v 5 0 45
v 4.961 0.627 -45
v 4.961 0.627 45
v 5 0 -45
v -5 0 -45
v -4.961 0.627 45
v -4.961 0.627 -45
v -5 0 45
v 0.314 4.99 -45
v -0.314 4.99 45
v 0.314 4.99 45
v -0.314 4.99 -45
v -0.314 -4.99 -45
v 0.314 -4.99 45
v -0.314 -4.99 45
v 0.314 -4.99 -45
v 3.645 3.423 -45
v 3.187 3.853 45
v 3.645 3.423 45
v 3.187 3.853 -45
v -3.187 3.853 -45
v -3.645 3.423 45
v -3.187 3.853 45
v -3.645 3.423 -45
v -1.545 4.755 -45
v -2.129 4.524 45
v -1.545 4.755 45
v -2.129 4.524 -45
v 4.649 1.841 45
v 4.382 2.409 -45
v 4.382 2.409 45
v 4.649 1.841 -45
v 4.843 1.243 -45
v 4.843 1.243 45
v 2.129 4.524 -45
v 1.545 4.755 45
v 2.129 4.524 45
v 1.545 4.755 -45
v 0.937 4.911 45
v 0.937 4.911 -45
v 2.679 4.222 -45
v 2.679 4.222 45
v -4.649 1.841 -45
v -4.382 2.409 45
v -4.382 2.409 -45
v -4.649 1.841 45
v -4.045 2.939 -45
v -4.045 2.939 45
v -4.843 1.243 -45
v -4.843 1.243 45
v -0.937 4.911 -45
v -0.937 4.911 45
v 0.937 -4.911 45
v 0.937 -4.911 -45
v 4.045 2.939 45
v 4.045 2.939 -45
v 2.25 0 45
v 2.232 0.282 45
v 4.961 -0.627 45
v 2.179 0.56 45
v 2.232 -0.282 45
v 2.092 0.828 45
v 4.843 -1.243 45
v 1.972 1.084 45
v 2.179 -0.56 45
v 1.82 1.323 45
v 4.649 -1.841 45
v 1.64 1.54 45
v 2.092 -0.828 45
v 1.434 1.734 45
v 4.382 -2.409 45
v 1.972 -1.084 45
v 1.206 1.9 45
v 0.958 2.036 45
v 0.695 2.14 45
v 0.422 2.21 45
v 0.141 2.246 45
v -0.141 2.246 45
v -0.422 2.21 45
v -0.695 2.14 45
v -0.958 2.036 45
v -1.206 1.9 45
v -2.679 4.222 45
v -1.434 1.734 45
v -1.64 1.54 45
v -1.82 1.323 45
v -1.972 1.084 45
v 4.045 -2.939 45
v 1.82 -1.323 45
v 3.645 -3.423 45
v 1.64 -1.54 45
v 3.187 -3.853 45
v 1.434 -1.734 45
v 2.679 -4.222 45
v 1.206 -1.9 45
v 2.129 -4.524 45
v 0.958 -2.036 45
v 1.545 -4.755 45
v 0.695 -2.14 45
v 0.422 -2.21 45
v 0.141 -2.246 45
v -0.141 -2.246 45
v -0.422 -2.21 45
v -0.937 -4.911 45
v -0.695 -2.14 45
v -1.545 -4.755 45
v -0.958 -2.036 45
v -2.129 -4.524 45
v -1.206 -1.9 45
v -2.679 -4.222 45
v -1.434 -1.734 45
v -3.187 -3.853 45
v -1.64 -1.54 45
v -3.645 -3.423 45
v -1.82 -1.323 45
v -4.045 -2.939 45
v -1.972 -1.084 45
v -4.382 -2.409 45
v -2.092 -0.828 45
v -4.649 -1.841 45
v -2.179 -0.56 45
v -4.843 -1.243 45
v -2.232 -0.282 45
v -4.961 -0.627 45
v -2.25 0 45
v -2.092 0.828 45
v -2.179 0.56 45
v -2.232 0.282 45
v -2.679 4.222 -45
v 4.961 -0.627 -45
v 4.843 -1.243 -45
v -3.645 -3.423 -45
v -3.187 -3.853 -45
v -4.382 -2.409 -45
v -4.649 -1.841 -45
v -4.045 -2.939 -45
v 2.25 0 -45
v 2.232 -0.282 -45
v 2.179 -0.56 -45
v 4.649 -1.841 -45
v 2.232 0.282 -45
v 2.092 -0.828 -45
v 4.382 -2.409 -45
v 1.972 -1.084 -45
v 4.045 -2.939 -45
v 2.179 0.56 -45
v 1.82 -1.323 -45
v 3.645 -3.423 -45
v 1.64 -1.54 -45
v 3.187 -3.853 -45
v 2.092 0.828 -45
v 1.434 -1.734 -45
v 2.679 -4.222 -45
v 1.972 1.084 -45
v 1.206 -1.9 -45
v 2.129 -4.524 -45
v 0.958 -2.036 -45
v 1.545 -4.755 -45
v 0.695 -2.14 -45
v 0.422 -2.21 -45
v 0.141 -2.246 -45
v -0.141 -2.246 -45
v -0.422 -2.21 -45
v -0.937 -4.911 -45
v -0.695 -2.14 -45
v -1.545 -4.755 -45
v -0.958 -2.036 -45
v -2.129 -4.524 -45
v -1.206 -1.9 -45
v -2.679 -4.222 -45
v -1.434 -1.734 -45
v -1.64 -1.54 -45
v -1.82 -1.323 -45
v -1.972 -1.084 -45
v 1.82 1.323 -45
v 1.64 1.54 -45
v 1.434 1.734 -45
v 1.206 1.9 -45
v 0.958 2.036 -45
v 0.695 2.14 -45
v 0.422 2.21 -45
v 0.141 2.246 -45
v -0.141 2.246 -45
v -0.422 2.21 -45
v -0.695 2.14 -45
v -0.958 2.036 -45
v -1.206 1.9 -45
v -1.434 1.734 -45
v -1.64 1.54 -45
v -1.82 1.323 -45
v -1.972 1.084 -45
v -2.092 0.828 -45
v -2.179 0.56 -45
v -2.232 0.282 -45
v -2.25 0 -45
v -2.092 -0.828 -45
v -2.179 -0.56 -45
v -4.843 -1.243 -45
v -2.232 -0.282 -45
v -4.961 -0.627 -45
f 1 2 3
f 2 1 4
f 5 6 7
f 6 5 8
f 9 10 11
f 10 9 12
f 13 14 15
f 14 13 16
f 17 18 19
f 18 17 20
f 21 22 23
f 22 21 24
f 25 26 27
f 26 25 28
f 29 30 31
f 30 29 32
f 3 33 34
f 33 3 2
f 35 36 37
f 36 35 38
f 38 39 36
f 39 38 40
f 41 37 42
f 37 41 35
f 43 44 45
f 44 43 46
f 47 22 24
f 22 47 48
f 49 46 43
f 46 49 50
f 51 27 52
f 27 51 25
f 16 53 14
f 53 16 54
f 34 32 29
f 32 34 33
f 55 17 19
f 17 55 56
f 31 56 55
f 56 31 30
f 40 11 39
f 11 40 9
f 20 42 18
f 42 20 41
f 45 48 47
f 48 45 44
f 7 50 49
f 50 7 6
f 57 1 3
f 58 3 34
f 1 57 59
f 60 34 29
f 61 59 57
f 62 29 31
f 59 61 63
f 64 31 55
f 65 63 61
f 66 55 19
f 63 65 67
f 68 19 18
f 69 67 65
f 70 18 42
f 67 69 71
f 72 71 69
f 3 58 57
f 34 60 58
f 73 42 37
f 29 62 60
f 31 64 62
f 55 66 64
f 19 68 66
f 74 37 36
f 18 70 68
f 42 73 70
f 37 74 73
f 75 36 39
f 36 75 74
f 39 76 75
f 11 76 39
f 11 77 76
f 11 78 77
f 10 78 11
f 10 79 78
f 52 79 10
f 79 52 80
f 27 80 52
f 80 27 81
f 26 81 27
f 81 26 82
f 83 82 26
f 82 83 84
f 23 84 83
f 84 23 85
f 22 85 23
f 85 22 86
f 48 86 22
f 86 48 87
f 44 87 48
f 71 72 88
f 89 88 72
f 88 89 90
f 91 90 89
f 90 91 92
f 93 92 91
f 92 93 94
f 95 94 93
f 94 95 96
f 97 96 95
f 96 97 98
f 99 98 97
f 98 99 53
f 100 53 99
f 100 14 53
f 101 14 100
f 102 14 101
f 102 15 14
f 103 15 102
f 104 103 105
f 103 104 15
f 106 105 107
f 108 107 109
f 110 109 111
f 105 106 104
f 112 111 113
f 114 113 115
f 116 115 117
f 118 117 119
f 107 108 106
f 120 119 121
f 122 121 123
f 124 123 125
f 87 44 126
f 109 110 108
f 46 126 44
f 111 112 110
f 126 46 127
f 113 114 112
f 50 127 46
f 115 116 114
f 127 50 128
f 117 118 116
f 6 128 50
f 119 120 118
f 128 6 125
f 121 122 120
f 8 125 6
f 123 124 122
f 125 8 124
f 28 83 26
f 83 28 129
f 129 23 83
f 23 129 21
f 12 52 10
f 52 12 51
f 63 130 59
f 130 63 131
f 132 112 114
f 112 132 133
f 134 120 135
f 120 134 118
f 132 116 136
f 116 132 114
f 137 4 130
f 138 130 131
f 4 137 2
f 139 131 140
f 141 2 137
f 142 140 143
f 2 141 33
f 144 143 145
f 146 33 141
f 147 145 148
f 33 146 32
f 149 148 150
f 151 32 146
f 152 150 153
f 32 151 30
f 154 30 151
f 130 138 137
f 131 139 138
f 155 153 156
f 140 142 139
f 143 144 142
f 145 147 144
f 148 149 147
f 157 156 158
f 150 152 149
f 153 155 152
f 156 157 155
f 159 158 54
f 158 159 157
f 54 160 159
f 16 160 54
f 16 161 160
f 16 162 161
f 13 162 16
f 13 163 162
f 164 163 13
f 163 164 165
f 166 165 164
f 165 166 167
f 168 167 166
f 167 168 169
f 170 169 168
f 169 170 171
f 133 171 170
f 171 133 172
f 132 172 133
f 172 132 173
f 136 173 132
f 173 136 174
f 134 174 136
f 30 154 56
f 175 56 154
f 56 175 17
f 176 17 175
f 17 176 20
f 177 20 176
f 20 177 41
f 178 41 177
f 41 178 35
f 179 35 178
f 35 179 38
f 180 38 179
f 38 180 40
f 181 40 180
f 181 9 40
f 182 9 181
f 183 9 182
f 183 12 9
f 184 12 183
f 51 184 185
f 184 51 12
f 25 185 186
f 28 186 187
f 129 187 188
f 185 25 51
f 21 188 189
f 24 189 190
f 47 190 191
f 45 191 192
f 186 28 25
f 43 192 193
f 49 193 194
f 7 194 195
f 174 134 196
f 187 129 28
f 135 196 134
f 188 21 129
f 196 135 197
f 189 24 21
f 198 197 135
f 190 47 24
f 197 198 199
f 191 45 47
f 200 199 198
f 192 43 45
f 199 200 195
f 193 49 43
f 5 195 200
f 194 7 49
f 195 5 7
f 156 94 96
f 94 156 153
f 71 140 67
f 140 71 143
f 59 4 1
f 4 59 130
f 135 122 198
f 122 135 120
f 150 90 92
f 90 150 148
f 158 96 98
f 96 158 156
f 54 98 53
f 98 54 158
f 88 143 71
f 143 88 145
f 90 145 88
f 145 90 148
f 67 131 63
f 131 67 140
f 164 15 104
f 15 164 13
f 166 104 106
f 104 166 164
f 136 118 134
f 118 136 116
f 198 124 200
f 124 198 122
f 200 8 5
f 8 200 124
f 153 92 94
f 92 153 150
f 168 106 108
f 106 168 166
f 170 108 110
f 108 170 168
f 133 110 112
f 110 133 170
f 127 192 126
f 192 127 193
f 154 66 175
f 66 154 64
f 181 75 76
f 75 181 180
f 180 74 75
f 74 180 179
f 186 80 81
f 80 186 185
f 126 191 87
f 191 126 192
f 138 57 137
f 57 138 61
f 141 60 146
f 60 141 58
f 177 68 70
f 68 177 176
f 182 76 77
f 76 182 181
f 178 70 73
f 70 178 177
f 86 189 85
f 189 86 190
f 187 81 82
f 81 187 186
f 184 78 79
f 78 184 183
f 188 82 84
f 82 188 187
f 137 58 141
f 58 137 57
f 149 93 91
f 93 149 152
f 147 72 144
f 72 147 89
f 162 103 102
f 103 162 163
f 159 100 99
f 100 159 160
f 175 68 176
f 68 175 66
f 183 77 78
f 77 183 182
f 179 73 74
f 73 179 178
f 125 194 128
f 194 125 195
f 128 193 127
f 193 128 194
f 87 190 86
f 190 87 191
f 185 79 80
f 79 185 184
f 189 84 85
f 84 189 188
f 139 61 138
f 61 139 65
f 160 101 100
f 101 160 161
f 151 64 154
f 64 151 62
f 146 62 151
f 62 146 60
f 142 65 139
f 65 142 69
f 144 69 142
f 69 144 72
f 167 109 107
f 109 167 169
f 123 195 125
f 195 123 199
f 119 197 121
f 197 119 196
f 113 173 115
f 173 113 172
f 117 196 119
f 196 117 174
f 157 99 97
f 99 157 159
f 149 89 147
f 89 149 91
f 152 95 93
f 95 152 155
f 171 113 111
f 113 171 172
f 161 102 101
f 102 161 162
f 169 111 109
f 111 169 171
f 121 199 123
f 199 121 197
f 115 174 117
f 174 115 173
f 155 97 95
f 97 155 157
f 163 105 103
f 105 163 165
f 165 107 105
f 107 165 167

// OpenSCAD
$fn = 50;


difference() {
	union() {
		translate(v = [0, 0, -45.0000000000]) {
			cylinder(h = 90, r = 5.0000000000);
		}
	}
	union() {
		translate(v = [0, 0, -100.0000000000]) {
			cylinder(h = 200, r = 2.2500000000);
		}
	}
}
